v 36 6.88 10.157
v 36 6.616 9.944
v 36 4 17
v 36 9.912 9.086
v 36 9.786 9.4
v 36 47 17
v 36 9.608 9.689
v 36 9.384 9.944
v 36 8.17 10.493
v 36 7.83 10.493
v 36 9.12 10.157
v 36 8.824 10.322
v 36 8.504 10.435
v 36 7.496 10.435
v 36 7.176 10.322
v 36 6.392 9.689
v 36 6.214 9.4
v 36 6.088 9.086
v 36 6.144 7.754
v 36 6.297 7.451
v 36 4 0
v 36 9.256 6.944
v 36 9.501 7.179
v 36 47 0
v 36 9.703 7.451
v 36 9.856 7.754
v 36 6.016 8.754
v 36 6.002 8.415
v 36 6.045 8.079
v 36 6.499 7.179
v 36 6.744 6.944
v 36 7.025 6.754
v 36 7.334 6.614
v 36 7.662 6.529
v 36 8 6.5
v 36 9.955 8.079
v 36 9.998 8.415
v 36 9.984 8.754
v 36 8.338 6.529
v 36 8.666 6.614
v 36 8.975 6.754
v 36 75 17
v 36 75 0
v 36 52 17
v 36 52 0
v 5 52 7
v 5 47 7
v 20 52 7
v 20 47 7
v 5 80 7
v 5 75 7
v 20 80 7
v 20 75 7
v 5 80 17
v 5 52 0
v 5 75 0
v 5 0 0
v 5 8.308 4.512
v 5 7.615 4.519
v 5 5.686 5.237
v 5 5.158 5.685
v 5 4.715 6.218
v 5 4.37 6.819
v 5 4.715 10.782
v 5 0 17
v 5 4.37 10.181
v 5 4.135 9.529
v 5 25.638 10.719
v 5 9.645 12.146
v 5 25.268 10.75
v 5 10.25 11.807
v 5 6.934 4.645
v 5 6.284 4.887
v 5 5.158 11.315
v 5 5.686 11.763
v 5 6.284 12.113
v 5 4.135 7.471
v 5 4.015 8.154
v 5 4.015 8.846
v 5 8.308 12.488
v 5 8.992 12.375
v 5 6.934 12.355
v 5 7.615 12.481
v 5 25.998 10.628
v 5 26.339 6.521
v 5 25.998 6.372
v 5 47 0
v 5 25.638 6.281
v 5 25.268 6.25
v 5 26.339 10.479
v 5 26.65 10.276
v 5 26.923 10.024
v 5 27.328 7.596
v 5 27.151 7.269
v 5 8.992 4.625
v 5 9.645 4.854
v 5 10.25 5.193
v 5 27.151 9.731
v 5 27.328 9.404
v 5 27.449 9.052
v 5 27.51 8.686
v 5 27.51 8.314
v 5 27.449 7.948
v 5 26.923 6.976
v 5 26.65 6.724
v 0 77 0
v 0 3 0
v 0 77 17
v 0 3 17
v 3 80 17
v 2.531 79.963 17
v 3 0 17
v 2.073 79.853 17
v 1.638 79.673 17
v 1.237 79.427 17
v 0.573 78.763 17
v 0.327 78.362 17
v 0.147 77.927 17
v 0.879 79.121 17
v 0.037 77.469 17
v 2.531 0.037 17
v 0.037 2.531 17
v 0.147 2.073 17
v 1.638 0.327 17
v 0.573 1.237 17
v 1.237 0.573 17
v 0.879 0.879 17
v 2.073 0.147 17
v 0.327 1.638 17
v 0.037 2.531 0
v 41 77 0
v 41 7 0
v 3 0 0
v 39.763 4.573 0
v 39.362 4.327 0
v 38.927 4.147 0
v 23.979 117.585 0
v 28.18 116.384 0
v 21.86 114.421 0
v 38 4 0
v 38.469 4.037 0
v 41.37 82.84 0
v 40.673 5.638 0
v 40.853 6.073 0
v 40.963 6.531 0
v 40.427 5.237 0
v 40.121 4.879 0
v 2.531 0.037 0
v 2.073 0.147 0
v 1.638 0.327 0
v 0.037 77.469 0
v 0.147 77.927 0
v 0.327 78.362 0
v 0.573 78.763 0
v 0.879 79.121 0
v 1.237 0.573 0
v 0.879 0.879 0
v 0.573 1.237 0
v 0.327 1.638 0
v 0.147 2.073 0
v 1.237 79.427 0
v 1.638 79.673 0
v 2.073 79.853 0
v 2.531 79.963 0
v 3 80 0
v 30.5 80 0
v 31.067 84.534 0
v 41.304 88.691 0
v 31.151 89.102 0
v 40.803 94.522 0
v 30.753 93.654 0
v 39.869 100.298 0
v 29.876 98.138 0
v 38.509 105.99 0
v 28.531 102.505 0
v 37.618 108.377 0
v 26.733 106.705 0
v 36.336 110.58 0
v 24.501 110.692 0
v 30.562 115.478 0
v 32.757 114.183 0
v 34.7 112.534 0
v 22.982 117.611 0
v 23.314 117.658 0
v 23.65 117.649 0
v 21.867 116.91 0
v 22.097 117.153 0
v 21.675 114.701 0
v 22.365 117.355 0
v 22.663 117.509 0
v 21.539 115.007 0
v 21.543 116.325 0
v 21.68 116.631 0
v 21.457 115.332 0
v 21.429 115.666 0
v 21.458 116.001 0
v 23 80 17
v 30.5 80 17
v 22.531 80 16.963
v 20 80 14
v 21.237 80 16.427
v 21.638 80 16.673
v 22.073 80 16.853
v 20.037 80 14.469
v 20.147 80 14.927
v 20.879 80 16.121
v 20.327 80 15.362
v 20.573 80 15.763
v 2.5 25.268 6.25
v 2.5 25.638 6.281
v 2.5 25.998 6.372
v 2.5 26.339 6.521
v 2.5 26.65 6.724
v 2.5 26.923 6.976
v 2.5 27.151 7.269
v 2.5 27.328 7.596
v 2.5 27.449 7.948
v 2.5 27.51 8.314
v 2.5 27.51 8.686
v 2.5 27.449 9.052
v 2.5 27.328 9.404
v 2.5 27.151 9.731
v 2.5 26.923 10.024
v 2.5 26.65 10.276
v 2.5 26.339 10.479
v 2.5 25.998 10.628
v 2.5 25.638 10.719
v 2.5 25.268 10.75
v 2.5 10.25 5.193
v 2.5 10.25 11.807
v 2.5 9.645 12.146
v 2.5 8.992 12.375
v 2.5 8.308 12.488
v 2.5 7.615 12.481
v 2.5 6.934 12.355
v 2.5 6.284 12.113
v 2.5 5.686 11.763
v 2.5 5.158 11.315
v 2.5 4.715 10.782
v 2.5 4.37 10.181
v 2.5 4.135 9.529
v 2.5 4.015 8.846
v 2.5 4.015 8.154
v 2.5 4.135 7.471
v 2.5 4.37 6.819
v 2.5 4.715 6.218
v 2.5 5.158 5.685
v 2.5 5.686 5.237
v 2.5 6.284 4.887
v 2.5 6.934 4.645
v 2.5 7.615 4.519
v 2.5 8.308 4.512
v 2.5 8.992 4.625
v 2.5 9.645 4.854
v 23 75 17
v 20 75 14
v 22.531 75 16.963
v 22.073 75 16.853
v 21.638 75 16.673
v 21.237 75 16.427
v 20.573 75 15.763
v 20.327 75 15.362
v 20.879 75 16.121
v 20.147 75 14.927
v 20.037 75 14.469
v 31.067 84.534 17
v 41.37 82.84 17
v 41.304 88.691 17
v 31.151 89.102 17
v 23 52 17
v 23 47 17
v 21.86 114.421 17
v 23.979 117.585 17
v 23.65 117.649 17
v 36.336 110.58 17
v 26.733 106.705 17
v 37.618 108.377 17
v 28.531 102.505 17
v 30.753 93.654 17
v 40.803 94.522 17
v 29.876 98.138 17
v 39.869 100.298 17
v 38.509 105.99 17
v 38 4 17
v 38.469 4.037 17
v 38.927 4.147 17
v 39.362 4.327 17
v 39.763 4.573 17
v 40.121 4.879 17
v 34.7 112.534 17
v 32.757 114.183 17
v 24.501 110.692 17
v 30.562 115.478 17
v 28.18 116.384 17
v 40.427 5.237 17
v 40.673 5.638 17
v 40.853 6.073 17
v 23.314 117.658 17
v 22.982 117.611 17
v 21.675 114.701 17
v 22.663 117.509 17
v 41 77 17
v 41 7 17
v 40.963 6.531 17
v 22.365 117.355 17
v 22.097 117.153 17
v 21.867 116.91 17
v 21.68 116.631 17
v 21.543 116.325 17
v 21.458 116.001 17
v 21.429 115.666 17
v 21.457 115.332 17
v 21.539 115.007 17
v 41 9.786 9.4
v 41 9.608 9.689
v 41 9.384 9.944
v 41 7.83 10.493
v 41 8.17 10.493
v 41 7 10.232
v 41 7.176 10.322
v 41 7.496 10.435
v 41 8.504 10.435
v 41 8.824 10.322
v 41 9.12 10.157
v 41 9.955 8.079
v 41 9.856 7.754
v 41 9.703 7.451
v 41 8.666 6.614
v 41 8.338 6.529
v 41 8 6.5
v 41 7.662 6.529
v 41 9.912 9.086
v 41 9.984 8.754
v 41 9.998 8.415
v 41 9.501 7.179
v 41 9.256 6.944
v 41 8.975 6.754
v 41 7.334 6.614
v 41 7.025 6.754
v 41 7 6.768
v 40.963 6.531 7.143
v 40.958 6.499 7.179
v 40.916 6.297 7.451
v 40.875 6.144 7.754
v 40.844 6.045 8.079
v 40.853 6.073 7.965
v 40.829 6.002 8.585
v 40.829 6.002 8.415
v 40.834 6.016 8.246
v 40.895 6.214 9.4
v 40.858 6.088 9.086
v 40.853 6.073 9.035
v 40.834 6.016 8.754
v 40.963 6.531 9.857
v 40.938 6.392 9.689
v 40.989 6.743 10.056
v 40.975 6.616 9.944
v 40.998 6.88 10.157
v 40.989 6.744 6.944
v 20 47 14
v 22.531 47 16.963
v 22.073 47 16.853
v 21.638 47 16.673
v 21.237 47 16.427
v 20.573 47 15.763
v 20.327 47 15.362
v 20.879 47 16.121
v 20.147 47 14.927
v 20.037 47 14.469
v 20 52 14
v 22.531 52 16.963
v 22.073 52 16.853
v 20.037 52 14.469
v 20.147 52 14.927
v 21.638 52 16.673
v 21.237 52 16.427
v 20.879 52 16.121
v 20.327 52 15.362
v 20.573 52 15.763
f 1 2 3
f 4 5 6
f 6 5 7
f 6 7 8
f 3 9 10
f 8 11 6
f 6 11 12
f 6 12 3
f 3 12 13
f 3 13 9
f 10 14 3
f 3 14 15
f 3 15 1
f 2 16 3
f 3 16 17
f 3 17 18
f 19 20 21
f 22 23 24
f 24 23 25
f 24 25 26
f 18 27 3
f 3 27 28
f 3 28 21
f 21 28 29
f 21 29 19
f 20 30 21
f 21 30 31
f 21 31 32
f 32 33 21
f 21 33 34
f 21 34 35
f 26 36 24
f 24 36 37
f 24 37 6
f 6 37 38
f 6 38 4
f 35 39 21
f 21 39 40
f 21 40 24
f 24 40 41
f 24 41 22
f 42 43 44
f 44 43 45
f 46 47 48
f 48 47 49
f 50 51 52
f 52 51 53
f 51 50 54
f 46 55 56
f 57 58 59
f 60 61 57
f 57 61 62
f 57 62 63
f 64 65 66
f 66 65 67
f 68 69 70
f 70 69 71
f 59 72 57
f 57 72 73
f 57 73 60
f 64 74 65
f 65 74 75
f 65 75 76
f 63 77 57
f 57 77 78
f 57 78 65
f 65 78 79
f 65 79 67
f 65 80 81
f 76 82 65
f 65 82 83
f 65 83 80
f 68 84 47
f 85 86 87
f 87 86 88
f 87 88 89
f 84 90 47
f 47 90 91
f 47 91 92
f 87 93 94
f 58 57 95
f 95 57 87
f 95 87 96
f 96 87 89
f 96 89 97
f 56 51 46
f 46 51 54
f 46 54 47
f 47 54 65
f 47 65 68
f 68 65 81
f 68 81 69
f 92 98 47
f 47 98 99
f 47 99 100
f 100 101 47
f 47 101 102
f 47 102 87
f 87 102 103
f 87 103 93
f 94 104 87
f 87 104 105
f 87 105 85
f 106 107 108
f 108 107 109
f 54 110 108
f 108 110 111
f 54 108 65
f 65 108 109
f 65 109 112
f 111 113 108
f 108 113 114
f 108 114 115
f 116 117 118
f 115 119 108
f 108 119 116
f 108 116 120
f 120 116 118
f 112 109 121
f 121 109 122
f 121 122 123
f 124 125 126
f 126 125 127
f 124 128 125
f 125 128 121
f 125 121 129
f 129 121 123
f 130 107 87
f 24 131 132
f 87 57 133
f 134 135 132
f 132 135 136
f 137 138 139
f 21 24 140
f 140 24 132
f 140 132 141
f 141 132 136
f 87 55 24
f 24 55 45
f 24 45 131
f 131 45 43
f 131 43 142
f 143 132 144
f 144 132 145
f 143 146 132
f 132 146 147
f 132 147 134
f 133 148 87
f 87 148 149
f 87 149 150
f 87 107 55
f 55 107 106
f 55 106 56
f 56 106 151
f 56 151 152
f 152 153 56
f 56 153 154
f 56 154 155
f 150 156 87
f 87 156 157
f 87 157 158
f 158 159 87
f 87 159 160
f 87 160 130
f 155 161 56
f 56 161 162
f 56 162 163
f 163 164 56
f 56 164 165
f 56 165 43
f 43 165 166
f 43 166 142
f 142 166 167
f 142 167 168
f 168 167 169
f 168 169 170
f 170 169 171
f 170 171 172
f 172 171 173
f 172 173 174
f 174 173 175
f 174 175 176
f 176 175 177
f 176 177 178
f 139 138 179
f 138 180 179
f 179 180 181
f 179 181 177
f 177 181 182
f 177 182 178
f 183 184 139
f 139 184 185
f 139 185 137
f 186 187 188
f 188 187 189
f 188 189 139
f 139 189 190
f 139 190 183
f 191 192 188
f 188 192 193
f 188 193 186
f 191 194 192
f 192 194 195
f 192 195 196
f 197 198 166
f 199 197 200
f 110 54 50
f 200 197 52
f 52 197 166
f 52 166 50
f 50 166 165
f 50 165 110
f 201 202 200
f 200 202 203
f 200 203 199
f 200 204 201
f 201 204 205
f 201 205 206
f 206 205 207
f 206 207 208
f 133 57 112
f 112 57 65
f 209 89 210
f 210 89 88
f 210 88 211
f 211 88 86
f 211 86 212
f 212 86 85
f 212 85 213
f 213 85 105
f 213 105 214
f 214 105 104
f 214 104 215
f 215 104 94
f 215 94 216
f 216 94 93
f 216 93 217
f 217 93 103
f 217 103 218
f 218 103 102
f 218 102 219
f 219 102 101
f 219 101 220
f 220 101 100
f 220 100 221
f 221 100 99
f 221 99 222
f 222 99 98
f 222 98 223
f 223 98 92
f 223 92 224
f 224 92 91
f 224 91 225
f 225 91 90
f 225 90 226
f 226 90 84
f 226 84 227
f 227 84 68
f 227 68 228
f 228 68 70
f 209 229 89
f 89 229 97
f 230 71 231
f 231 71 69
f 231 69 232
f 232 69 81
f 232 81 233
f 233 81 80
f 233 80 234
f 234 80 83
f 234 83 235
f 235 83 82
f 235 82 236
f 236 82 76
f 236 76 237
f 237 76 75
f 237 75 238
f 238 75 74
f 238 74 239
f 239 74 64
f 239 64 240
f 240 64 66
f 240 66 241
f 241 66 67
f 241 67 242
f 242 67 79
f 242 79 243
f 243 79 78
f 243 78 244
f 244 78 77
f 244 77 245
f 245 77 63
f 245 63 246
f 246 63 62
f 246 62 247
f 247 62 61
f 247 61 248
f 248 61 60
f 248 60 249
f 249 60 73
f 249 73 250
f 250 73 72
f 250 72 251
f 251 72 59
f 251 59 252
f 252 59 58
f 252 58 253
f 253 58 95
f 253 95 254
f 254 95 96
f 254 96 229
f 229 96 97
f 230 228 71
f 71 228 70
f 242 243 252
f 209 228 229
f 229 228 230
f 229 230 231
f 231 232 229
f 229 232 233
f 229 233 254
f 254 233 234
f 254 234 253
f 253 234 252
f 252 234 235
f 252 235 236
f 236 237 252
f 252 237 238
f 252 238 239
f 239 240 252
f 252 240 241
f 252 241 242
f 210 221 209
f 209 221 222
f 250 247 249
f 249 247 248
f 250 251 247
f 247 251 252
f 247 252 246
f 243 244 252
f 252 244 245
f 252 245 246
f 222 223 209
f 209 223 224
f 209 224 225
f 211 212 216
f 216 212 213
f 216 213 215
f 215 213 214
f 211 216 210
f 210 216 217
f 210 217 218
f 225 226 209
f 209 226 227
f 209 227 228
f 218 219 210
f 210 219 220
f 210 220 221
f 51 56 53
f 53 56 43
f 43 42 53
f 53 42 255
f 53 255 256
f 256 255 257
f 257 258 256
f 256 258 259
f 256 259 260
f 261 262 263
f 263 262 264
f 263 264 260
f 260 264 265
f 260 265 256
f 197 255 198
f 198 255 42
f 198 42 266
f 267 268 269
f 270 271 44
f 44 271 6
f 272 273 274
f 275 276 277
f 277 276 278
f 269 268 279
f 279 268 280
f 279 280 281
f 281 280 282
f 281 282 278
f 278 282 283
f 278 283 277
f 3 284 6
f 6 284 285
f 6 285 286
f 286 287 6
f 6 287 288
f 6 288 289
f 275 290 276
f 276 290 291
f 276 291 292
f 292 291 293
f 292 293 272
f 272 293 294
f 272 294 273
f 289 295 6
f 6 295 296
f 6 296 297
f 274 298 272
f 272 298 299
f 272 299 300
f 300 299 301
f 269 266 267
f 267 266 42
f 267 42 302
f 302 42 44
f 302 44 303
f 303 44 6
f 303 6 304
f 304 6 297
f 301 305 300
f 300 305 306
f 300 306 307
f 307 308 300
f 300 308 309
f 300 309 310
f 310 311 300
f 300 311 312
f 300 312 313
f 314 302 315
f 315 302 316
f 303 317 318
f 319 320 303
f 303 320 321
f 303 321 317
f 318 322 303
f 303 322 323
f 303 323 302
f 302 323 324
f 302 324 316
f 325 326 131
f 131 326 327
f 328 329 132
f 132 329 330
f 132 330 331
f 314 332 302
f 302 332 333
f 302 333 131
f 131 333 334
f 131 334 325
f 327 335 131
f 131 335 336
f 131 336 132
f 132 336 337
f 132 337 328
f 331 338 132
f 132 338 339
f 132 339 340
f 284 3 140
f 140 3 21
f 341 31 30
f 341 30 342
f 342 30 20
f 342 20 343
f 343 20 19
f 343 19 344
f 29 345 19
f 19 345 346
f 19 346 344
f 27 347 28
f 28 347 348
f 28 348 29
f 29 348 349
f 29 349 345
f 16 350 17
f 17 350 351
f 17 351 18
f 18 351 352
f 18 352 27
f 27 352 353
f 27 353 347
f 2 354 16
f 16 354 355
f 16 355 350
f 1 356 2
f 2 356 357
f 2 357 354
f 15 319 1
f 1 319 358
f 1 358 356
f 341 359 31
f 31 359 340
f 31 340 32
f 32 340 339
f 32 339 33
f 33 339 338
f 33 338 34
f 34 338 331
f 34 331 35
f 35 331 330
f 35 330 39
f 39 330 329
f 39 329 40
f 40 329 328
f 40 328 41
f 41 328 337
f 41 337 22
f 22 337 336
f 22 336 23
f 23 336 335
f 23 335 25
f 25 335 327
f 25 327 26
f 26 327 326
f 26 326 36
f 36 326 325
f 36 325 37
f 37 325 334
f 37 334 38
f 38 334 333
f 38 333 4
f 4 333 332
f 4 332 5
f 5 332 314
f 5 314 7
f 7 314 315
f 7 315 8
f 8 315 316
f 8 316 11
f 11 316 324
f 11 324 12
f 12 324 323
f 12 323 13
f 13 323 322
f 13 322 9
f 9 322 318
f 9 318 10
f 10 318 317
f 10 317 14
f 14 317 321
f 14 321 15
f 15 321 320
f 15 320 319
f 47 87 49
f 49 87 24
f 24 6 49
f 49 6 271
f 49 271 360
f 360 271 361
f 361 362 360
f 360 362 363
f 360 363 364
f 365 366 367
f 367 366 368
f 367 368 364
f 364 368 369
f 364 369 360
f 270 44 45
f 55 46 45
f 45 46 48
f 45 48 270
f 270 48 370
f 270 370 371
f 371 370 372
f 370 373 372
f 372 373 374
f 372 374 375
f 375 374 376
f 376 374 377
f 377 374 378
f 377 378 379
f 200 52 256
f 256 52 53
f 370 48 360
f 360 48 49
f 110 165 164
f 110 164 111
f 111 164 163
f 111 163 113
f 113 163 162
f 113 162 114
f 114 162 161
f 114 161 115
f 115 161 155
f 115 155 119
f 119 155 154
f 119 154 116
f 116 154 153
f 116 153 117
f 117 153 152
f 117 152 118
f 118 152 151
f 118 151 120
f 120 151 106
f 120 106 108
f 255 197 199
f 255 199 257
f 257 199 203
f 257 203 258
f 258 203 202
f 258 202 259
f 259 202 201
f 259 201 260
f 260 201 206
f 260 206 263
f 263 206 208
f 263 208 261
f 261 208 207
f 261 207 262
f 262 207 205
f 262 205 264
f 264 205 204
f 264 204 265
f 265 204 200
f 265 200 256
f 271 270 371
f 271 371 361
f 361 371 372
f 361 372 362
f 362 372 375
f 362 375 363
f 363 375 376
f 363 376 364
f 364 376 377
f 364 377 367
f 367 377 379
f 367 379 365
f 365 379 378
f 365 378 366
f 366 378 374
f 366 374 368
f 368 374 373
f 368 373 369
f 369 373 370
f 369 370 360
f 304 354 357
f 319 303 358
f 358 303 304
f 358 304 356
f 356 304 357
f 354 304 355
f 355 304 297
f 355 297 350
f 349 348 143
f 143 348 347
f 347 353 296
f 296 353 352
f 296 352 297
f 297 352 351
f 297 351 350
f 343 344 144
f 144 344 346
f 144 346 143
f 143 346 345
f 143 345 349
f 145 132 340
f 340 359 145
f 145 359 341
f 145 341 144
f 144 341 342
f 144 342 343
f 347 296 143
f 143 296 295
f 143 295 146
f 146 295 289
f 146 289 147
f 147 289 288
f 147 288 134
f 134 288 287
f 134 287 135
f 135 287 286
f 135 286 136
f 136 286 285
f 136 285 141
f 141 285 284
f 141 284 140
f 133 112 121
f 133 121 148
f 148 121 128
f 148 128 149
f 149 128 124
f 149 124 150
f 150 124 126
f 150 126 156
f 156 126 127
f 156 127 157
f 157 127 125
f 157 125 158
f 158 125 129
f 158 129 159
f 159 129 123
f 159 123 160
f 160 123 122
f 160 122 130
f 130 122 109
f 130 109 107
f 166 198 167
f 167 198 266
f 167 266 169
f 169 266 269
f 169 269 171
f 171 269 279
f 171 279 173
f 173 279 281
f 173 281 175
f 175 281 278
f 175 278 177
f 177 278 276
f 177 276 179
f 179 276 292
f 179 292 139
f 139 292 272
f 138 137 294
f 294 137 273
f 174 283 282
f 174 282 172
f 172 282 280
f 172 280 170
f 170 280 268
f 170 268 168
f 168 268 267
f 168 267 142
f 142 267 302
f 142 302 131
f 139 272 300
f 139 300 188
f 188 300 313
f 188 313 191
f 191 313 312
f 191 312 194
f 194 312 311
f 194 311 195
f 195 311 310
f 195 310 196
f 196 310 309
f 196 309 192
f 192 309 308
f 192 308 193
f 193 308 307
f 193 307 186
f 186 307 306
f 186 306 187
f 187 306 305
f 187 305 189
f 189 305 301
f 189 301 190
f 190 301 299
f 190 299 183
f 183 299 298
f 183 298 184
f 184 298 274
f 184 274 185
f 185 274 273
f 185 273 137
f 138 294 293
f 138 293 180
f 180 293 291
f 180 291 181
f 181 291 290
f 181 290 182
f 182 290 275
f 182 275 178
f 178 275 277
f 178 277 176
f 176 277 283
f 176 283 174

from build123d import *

# Parameters (mm, degrees)
SKETCH1_W             = 5
SKETCH1_H             = 17
BOSS_EXTRUDE1_DEPTH   = 80
BOSS_EXTRUDE1_2_DEPTH = 80
CUT_EXTRUDE1_DEPTH    = 2.5
SKETCH7_W             = 17
SKETCH7_H             = 4
CUT_EXTRUDE4_DEPTH    = 5
SKETCH8_R             = 2
CUT_EXTRUDE5_DEPTH    = 5
BOSS_EXTRUDE3_REACH   = 91.359
SKETCH9_W             = 7
SKETCH9_H             = 5
SKETCH10_W            = 10
SKETCH10_H            = 5
BOSS_EXTRUDE4_DEPTH   = 16
FILLET3_R             = 3
BOSS_EXTRUDE5_DEPTH   = 17
FILLET4_R             = 2
FILLET5_R             = 15


with BuildPart() as part:
    # Sketch1 → Boss-Extrude1 (new body)
    with BuildSketch(Plane(origin=(0, 0, 0), x_dir=(1, 0, 0), z_dir=(0, 1, 0))):
        with Locations((2.5, -8.5)):
            Rectangle(SKETCH1_W, SKETCH1_H)
    extrude(amount=BOSS_EXTRUDE1_DEPTH)

    # Sketch2 → Cut-Extrude1 (cut)
    with BuildSketch(Plane(origin=(5, 0, 0), x_dir=(0, 0, -1), z_dir=(1, 0, 0))):
        with BuildLine():
            Line((-10.75, 25.267799715), (-11.807189139, 10.25))
            ThreePointArc((-11.807189139, 10.25), (-8.5, 12), (-5.192810861, 10.25))
            Line((-5.192810861, 10.25), (-6.25, 25.267799715))
            ThreePointArc((-6.25, 25.267799715), (-8.5, 27.517799715), (-10.75, 25.267799715))
        make_face()
        with BuildLine():
            ThreePointArc((-5.192810861, 10.25), (-8.5, 12), (-11.807189139, 10.25))
            Line((-11.807189139, 10.25), (-11.807189139, 5.75))
            ThreePointArc((-11.807189139, 5.75), (-8.5, 4), (-5.192810861, 5.75))
            Line((-5.192810861, 5.75), (-5.192810861, 10.25))
        make_face()
        with BuildLine():
            Line((-11.807189139, 5.75), (-11.807189139, 10.25))
            ThreePointArc((-11.807189139, 10.25), (-12.5, 8), (-11.807189139, 5.75))
        make_face()
        with BuildLine():
            ThreePointArc((-4.5, 8), (-4.677124344, 9.177124344), (-5.192810861, 10.25))
            Line((-5.192810861, 10.25), (-5.192810861, 5.75))
            ThreePointArc((-5.192810861, 5.75), (-4.677124344, 6.822875656), (-4.5, 8))
        make_face()
    extrude(amount=-CUT_EXTRUDE1_DEPTH, mode=Mode.SUBTRACT)


with BuildPart() as body_2:
    # Sketch1 → Boss-Extrude1 2 (new body)
    with BuildSketch(Plane(origin=(0, 0, 0), x_dir=(1, 0, 0), z_dir=(0, 1, 0))):
        with Locations((38.5, -8.5)):
            Rectangle(SKETCH1_W, SKETCH1_H)
    extrude(amount=BOSS_EXTRUDE1_2_DEPTH)

    # Sketch7 → Cut-Extrude4 (cut)
    with BuildSketch(Plane(origin=(41, 0, 0), x_dir=(0, 0, -1), z_dir=(1, 0, 0))):
        with Locations((-8.5, 2)):
            Rectangle(SKETCH7_W, SKETCH7_H)
    extrude(amount=-CUT_EXTRUDE4_DEPTH, mode=Mode.SUBTRACT)

    # Sketch8 → Cut-Extrude5 (cut)
    with BuildSketch(Plane(origin=(41, 0, 0), x_dir=(0, 0, -1), z_dir=(1, 0, 0))):
        with Locations((-8.5, 8)):
            Circle(SKETCH8_R)
    extrude(amount=-CUT_EXTRUDE5_DEPTH, mode=Mode.SUBTRACT)

    # Sketch9 → Boss-Extrude3 (add, up to next)
    with BuildSketch(Plane(origin=(5, 0, 0), x_dir=(0, 0, -1), z_dir=(1, 0, 0)), mode=Mode.PRIVATE) as boss_extrude3_sk1:
        with Locations((-3.5, 77.5)):
            Rectangle(SKETCH9_W, SKETCH9_H)
    boss_extrude3_tool1 = extrude(boss_extrude3_sk1.sketch, amount=BOSS_EXTRUDE3_REACH, mode=Mode.PRIVATE) - body_2.part
    # Sketch9 → Boss-Extrude3 (add, up to next)
    with BuildSketch(Plane(origin=(5, 0, 0), x_dir=(0, 0, -1), z_dir=(1, 0, 0)), mode=Mode.PRIVATE) as boss_extrude3_sk2:
        with Locations((-3.5, 49.5)):
            Rectangle(SKETCH9_W, SKETCH9_H)
    boss_extrude3_tool2 = extrude(boss_extrude3_sk2.sketch, amount=BOSS_EXTRUDE3_REACH, mode=Mode.PRIVATE) - body_2.part

    add(part.part)  # Boss-Extrude3 merges part
    add(boss_extrude3_tool1.solids().sort_by_distance((5, 77.5, 3.5))[0])
    add(boss_extrude3_tool2.solids().sort_by_distance((5, 49.5, 3.5))[0])

    # Sketch10 → Boss-Extrude4 (add)
    with BuildSketch(Plane.ZY.offset(-36)):
        with Locations((12, 77.5)):
            Rectangle(SKETCH10_W, SKETCH10_H)
        with Locations((12, 49.5)):
            Rectangle(SKETCH10_W, SKETCH10_H)
    extrude(amount=BOSS_EXTRUDE4_DEPTH)

    # Fillet3
    # the kernel refuses this fillet: 3 mm, written as the material it takes off along each edge
    with BuildSketch(Plane(origin=(41, 80, -7.5), x_dir=(0, -1, 0), z_dir=(0, 0, 1)), Plane(origin=(41, 4, 24.5), x_dir=(0, 1, 0), z_dir=(0, 0, -1))) as fillet3_piece_1:
        with BuildLine():
            CenterArc((FILLET3_R, -FILLET3_R), FILLET3_R, 90, 90)
            Line((0, -FILLET3_R), (0, 0))
            Line((0, 0), (FILLET3_R, 0))
        make_face()
    extrude(amount=32, mode=Mode.SUBTRACT)
    with BuildSketch(Plane(origin=(0, 80, 24.5), x_dir=(1, 0, 0), z_dir=(0, 0, -1)), Plane(origin=(0, 0, 24.5), x_dir=(0, 1, 0), z_dir=(0, 0, -1))) as fillet3_piece_2:
        with BuildLine():
            CenterArc((FILLET3_R, FILLET3_R), FILLET3_R, 180, 90)
            Line((0, FILLET3_R), (0, 0))
            Line((0, 0), (FILLET3_R, 0))
        make_face()
    extrude(amount=32, mode=Mode.SUBTRACT)
    with BuildSketch(Plane(origin=(20, 67.5, 17), x_dir=(0, 0, -1), z_dir=(0, 1, 0))) as fillet3_piece_3:
        with BuildLine():
            CenterArc((FILLET3_R, -FILLET3_R), FILLET3_R, 90, 90)
            Line((0, -FILLET3_R), (0, 0))
            Line((0, 0), (FILLET3_R, 0))
        make_face()
    extrude(amount=20, mode=Mode.SUBTRACT)
    with BuildSketch(Plane(origin=(20, 39.5, 17), x_dir=(1, 0, 0), z_dir=(0, 1, 0))) as fillet3_piece_4:
        with BuildLine():
            CenterArc((FILLET3_R, FILLET3_R), FILLET3_R, 180, 90)
            Line((0, FILLET3_R), (0, 0))
            Line((0, 0), (FILLET3_R, 0))
        make_face()
    extrude(amount=20, mode=Mode.SUBTRACT)

    # Sketch12 → Boss-Extrude5 (add, through all)
    with BuildSketch(Plane.XY.offset(17)):
        with BuildLine():
            Line((17.07120829, 119.558177775), (35.709852909, 114.232850741))
            ThreePointArc((35.709852909, 114.232850741), (40.614477912, 95.937468732), (41, 77))
            Line((41, 77), (30.5, 80))
            ThreePointArc((30.5, 80), (28.882999649, 101.509498789), (17.07120829, 119.558177775))
        make_face()
    extrude(amount=-BOSS_EXTRUDE5_DEPTH)

    # Fillet4
    fillet4_edges = [body_2.edges().sort_by_distance(p)[0] for p in [
        (17.07120829, 119.558177775, 8.5),
    ]]
    fillet(fillet4_edges, radius=FILLET4_R)

    # Fillet5
    fillet5_edges = [body_2.edges().sort_by_distance(p)[0] for p in [
        (35.709852909, 114.232850741, 8.5),
    ]]
    fillet(fillet5_edges, radius=FILLET5_R)


solid = body_2.part
